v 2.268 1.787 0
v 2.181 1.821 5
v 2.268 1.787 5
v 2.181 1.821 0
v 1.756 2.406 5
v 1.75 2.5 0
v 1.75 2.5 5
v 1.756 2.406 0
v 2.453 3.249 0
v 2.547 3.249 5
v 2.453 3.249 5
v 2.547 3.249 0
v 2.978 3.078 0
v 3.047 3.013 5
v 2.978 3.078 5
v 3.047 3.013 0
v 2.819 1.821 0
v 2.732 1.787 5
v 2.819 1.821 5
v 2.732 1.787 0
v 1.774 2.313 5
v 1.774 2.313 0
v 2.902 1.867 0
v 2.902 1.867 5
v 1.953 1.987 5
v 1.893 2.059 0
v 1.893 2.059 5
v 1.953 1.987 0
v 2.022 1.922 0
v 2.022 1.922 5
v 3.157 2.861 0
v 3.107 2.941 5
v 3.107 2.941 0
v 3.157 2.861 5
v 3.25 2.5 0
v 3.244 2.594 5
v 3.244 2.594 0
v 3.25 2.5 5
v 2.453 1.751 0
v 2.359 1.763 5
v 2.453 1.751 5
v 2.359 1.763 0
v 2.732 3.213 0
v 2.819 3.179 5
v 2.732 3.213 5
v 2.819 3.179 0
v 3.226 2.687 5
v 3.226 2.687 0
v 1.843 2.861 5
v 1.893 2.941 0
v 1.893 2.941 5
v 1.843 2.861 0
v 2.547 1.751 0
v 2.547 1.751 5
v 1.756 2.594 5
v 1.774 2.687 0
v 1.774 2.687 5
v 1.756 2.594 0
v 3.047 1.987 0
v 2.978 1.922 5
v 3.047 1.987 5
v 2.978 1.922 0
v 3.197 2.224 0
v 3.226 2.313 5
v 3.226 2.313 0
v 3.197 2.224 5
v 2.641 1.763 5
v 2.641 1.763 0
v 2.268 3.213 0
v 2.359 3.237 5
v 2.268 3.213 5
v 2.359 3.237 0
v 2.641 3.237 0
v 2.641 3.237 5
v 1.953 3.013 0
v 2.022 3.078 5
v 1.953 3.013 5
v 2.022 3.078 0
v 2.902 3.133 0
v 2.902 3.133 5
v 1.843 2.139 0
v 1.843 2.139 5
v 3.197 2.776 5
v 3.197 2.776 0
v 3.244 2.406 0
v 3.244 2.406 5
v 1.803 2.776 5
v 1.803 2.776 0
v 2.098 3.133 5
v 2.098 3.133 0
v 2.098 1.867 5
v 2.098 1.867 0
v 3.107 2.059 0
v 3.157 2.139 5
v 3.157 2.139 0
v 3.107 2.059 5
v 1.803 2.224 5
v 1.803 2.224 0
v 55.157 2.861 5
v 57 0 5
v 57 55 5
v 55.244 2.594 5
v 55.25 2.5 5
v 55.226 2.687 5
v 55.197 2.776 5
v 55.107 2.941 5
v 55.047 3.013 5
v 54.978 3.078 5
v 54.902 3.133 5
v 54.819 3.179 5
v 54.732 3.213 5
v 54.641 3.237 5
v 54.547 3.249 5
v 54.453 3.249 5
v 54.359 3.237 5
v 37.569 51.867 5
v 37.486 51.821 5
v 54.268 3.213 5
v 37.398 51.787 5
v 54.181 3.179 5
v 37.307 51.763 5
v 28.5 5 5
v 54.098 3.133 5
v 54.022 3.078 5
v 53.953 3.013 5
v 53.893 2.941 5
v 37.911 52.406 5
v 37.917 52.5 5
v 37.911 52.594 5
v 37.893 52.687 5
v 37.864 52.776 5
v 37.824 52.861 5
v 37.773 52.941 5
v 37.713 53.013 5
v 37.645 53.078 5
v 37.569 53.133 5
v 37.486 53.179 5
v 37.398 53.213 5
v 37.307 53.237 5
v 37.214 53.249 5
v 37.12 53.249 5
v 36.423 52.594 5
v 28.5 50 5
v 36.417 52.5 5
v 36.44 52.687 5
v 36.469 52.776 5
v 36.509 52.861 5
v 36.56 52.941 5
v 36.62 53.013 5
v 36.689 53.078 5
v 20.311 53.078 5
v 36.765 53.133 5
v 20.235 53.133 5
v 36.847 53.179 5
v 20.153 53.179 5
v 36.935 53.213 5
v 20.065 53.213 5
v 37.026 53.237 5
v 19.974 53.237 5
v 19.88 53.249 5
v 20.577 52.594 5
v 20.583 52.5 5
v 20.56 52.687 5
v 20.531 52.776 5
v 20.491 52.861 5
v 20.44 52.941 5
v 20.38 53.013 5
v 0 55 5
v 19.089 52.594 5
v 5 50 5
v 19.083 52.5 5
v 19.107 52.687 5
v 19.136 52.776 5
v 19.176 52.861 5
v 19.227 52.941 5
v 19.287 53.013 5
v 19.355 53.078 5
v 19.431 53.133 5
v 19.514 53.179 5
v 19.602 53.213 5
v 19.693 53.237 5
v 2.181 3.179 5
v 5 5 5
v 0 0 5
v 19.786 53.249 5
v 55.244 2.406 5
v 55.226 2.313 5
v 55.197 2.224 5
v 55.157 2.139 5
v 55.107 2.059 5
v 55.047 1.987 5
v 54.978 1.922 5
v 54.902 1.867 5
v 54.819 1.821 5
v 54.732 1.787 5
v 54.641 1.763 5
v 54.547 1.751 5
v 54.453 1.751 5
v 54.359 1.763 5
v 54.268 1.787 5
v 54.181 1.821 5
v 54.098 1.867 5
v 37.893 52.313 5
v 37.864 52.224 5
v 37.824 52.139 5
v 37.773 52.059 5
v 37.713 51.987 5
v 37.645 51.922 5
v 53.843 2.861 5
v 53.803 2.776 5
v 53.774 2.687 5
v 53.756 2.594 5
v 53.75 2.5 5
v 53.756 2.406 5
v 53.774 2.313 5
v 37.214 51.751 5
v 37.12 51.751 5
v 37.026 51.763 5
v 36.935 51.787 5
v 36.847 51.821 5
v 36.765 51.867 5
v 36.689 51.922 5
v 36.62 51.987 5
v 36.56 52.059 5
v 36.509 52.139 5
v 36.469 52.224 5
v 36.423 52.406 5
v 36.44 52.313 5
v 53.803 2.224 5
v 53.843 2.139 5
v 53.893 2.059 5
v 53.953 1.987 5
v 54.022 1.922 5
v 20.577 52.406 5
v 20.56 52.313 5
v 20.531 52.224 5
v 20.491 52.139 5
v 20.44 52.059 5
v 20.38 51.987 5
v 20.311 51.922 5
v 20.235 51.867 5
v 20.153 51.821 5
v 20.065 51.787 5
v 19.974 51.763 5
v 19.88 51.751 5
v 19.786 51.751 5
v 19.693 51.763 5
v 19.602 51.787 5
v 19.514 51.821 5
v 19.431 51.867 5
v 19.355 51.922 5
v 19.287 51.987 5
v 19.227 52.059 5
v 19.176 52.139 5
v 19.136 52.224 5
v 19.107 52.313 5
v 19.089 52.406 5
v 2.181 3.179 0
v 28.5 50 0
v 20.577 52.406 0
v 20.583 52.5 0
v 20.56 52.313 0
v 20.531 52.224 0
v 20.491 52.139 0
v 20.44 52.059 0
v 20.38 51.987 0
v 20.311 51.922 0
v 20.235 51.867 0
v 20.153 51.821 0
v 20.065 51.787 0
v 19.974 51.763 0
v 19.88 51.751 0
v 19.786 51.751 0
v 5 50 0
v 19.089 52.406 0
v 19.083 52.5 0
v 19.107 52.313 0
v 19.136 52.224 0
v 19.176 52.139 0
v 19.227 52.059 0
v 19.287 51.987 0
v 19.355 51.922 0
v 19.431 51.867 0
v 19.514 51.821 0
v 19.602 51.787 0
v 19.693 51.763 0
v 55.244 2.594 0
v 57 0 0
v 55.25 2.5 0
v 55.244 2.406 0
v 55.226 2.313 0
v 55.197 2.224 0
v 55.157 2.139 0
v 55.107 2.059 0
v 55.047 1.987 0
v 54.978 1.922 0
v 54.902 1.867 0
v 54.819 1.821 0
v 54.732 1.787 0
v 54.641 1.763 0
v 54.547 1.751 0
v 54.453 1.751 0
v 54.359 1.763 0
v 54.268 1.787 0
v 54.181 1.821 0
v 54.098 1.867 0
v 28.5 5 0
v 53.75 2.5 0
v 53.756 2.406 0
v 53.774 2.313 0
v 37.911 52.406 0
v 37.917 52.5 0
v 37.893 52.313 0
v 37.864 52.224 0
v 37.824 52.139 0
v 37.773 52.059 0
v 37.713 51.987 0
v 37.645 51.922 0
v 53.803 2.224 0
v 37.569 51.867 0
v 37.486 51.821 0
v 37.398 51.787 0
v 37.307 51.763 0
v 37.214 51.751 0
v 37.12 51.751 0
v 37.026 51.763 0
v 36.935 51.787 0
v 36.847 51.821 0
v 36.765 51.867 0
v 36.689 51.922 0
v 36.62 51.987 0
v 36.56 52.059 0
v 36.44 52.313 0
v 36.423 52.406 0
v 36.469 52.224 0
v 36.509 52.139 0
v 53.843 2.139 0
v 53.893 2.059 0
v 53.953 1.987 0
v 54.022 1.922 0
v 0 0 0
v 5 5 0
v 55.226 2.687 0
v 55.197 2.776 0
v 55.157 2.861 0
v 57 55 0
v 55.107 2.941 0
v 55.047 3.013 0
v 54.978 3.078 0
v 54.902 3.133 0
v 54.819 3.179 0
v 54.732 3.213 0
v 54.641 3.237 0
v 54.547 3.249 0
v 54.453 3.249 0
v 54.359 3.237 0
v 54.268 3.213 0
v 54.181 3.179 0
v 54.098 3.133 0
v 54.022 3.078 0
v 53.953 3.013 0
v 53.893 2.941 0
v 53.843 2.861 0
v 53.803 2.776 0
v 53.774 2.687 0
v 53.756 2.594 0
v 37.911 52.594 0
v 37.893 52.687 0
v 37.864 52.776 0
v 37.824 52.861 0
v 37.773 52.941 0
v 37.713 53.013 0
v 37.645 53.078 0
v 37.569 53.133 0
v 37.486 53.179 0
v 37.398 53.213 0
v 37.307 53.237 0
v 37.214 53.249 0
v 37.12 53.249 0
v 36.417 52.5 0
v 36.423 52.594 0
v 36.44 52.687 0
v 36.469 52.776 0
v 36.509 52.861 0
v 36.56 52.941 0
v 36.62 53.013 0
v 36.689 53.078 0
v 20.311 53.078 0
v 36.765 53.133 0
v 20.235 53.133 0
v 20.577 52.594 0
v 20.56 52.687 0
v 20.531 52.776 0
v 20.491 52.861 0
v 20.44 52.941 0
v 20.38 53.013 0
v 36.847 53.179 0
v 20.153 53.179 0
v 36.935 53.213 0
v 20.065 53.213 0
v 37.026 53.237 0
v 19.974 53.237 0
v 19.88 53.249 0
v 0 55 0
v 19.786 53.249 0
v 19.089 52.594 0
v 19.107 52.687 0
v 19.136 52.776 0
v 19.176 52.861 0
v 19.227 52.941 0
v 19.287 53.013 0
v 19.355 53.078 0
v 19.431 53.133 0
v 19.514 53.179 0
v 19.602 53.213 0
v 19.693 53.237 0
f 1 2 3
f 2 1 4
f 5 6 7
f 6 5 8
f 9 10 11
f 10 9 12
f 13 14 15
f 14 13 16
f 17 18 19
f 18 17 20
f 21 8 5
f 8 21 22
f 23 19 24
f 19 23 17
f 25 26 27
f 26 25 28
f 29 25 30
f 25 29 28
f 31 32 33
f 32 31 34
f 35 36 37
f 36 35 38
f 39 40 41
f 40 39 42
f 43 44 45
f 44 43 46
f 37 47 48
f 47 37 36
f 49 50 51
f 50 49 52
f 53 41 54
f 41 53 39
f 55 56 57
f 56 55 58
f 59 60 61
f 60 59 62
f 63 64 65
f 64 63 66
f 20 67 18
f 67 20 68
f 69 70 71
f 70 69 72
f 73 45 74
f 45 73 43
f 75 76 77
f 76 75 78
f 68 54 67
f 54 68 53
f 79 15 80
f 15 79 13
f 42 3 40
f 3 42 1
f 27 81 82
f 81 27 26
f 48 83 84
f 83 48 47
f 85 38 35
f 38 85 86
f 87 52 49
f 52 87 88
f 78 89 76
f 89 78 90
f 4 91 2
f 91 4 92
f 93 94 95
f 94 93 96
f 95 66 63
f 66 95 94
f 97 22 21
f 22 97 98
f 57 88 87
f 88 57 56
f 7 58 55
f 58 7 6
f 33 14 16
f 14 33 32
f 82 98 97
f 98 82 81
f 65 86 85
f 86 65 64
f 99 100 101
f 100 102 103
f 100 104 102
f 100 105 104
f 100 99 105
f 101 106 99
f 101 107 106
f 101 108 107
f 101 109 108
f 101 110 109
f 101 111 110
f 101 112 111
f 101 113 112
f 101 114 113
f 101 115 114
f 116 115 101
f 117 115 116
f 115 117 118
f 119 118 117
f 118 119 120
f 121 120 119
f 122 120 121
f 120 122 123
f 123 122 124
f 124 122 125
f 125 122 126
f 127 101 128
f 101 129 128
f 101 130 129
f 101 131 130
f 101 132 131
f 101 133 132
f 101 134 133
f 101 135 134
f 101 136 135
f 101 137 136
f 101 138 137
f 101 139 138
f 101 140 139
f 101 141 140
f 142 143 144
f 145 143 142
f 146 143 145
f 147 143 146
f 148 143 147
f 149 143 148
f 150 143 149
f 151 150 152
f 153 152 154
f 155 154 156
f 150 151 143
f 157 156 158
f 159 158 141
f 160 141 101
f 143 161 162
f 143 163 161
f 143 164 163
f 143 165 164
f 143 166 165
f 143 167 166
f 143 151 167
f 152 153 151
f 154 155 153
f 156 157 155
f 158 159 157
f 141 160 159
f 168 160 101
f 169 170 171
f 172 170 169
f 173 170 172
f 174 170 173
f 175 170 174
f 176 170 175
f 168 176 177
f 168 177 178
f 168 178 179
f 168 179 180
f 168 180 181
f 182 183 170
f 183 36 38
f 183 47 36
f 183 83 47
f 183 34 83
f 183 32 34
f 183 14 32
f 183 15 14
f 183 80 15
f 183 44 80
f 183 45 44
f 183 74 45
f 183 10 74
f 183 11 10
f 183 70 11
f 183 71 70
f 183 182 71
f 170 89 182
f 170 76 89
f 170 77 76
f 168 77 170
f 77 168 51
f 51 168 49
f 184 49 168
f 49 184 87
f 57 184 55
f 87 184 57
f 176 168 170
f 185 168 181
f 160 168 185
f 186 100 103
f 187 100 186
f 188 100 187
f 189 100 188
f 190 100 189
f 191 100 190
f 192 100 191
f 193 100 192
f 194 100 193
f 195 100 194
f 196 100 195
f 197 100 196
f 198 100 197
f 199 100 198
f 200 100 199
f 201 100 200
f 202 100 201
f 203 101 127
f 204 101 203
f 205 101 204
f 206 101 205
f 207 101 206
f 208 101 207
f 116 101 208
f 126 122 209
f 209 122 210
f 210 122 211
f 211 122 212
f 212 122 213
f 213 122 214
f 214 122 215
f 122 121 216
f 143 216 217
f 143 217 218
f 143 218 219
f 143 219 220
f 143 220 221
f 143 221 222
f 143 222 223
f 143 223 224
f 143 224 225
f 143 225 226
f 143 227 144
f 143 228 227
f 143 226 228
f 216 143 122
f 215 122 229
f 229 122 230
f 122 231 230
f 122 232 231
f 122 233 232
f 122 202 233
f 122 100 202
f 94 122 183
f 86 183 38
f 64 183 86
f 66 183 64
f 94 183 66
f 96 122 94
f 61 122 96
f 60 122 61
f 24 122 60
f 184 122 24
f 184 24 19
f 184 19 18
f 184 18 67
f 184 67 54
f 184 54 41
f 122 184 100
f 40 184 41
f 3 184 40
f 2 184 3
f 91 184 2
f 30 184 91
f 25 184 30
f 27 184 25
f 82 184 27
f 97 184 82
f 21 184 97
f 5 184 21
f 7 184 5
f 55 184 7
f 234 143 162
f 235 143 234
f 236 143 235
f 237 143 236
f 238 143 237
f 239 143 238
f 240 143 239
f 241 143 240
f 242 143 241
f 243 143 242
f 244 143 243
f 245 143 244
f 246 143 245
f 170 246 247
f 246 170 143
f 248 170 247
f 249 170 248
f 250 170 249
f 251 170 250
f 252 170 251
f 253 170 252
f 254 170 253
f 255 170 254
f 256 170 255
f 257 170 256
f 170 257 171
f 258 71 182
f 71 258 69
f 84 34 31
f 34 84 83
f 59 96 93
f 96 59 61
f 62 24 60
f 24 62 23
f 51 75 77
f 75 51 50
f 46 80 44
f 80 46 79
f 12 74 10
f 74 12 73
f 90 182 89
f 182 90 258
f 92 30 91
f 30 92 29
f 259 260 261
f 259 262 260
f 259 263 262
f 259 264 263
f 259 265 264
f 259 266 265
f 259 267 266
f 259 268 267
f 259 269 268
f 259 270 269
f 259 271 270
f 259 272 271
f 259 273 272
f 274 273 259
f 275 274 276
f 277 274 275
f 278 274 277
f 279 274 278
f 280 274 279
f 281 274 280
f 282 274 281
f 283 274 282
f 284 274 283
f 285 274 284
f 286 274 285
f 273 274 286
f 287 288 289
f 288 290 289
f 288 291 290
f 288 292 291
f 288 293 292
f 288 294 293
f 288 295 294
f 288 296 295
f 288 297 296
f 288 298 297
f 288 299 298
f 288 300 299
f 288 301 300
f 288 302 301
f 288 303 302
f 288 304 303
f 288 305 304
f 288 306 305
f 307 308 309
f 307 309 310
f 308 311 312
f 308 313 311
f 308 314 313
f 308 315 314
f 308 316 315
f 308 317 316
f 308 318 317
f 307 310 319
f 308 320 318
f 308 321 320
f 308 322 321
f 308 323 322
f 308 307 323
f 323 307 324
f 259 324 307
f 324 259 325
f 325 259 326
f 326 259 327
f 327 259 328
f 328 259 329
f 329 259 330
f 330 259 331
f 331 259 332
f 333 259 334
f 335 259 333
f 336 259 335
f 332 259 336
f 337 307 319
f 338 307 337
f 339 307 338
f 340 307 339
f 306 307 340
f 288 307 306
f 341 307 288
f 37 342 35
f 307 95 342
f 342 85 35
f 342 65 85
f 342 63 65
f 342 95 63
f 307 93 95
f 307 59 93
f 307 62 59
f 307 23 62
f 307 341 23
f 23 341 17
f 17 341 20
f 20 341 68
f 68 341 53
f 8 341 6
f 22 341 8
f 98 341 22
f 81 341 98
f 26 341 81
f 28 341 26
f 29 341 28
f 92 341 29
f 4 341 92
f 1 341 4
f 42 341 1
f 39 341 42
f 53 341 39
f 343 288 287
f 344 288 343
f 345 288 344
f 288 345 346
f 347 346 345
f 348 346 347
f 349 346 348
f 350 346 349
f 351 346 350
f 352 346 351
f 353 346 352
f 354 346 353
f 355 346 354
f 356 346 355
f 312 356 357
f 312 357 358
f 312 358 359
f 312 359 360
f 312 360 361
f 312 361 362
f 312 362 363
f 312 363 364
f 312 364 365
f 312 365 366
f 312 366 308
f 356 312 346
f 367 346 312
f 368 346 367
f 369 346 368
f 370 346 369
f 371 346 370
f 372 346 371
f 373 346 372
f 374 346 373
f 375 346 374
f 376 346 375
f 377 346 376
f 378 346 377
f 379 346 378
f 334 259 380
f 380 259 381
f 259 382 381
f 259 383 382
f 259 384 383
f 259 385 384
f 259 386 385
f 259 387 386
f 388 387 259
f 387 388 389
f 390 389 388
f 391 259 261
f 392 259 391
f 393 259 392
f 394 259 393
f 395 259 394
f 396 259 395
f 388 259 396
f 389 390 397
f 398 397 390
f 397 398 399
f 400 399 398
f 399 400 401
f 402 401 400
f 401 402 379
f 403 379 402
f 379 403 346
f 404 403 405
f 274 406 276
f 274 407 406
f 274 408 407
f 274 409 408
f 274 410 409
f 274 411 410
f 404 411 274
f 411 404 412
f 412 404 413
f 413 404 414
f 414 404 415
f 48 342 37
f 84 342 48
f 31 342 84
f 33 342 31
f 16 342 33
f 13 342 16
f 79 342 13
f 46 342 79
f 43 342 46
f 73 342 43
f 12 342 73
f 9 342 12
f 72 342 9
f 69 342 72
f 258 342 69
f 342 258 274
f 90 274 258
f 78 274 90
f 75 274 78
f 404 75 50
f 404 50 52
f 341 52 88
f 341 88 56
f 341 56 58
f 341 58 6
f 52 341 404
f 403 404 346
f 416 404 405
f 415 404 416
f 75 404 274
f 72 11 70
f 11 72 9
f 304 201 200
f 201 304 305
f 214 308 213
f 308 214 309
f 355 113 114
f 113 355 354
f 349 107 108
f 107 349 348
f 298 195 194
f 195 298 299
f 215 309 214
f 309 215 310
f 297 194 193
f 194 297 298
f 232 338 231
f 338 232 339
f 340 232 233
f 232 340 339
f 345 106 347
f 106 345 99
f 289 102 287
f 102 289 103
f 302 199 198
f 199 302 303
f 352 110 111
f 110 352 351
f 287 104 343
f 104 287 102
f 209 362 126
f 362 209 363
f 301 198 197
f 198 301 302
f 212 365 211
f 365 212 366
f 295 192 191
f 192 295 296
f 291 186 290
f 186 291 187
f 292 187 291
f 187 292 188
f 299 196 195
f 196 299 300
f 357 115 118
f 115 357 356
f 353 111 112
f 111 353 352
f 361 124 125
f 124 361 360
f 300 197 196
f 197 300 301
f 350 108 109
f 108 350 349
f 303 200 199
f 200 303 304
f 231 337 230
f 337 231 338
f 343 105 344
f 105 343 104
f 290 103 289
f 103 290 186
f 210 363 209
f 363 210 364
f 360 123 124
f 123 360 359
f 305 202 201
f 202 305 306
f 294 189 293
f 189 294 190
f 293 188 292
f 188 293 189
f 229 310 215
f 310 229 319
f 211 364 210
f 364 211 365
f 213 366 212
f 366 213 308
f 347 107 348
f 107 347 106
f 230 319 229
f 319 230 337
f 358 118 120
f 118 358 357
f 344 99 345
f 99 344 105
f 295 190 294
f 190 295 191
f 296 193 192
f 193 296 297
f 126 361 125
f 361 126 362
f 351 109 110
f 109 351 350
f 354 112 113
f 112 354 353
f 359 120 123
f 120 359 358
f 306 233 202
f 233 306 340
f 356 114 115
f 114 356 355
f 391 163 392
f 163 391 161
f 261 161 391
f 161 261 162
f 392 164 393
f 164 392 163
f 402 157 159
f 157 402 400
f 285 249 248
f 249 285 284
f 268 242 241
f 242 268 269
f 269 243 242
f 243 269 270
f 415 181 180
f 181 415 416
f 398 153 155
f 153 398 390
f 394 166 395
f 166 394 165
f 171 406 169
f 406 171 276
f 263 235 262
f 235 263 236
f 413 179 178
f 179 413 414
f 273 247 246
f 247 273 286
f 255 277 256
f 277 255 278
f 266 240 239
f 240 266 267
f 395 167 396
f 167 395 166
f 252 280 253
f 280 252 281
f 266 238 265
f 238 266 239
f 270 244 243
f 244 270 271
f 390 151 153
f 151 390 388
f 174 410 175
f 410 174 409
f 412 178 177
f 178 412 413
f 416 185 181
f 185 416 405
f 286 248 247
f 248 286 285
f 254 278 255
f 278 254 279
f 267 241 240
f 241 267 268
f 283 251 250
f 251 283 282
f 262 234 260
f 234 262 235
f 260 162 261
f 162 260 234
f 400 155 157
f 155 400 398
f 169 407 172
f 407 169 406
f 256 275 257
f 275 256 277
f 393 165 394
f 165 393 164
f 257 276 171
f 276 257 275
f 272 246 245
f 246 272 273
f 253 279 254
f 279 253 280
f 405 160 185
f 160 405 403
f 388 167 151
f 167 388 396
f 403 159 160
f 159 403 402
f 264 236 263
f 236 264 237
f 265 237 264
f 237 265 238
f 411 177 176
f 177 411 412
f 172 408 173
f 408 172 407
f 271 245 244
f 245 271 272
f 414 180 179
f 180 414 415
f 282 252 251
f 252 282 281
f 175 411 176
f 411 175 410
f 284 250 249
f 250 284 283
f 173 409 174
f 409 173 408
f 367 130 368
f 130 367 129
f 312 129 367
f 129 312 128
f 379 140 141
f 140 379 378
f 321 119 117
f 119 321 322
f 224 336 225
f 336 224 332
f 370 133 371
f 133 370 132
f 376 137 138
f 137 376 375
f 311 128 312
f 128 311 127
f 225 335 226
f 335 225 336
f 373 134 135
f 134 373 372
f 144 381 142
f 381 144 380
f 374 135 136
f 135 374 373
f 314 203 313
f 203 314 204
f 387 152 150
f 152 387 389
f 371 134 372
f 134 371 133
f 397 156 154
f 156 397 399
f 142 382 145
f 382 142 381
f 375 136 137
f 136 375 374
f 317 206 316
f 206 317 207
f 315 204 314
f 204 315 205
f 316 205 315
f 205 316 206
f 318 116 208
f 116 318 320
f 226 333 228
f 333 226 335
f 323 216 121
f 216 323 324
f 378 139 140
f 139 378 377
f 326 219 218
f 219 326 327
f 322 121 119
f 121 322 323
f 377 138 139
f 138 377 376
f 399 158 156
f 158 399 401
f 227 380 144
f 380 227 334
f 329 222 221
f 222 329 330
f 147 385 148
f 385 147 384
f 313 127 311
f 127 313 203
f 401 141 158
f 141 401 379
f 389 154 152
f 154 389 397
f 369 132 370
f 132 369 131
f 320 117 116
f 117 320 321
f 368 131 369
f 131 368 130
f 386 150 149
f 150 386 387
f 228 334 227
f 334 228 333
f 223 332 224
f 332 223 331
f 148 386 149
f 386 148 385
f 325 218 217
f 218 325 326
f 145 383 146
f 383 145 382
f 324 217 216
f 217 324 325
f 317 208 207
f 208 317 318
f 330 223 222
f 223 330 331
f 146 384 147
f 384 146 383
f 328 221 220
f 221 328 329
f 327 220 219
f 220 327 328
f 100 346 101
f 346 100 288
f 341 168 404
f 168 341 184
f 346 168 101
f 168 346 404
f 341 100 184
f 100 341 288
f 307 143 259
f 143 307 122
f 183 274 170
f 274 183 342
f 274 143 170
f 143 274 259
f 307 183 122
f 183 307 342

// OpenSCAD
$fn=50;
MOTOR_WIDTH = 45; //width of square with safety
MOTOR_LENGTH = 47;//length of the motor house without PG
PG_DIA = 37; //diameter of the engine with safety

WALL_WIDTH = 5;
ALLAN_HOLE_DIA = 5.5;
ALLAN_DISTANCE = 10;
SELF_TAPPING_DIA = 1.5; //for M3×16 screws, maybe for M2 instead?

difference()
{
cube([MOTOR_LENGTH+2*WALL_WIDTH, MOTOR_WIDTH+2*WALL_WIDTH, WALL_WIDTH]);
translate([WALL_WIDTH,WALL_WIDTH,0])cube([MOTOR_LENGTH/2, MOTOR_WIDTH, WALL_WIDTH]);
SideHoles(MOTOR_WIDTH, MOTOR_LENGTH, WALL_WIDTH, SELF_TAPPING_DIA);
}

module SideHoles(side, length, wall, hole)
{
	depth = wall;
	origin = [wall/2,wall/2,0];
	
	translate(origin)cylinder(h = depth, d = hole);
	translate(origin+[length+wall,0,0])cylinder(h = depth, d = hole);
	translate(origin+[(length+wall)*1/3,side+wall,0])cylinder(h = depth, d = hole);
	translate(origin+[(length+wall)*2/3,side+wall,0])cylinder(h = depth, d = hole);
	
}
